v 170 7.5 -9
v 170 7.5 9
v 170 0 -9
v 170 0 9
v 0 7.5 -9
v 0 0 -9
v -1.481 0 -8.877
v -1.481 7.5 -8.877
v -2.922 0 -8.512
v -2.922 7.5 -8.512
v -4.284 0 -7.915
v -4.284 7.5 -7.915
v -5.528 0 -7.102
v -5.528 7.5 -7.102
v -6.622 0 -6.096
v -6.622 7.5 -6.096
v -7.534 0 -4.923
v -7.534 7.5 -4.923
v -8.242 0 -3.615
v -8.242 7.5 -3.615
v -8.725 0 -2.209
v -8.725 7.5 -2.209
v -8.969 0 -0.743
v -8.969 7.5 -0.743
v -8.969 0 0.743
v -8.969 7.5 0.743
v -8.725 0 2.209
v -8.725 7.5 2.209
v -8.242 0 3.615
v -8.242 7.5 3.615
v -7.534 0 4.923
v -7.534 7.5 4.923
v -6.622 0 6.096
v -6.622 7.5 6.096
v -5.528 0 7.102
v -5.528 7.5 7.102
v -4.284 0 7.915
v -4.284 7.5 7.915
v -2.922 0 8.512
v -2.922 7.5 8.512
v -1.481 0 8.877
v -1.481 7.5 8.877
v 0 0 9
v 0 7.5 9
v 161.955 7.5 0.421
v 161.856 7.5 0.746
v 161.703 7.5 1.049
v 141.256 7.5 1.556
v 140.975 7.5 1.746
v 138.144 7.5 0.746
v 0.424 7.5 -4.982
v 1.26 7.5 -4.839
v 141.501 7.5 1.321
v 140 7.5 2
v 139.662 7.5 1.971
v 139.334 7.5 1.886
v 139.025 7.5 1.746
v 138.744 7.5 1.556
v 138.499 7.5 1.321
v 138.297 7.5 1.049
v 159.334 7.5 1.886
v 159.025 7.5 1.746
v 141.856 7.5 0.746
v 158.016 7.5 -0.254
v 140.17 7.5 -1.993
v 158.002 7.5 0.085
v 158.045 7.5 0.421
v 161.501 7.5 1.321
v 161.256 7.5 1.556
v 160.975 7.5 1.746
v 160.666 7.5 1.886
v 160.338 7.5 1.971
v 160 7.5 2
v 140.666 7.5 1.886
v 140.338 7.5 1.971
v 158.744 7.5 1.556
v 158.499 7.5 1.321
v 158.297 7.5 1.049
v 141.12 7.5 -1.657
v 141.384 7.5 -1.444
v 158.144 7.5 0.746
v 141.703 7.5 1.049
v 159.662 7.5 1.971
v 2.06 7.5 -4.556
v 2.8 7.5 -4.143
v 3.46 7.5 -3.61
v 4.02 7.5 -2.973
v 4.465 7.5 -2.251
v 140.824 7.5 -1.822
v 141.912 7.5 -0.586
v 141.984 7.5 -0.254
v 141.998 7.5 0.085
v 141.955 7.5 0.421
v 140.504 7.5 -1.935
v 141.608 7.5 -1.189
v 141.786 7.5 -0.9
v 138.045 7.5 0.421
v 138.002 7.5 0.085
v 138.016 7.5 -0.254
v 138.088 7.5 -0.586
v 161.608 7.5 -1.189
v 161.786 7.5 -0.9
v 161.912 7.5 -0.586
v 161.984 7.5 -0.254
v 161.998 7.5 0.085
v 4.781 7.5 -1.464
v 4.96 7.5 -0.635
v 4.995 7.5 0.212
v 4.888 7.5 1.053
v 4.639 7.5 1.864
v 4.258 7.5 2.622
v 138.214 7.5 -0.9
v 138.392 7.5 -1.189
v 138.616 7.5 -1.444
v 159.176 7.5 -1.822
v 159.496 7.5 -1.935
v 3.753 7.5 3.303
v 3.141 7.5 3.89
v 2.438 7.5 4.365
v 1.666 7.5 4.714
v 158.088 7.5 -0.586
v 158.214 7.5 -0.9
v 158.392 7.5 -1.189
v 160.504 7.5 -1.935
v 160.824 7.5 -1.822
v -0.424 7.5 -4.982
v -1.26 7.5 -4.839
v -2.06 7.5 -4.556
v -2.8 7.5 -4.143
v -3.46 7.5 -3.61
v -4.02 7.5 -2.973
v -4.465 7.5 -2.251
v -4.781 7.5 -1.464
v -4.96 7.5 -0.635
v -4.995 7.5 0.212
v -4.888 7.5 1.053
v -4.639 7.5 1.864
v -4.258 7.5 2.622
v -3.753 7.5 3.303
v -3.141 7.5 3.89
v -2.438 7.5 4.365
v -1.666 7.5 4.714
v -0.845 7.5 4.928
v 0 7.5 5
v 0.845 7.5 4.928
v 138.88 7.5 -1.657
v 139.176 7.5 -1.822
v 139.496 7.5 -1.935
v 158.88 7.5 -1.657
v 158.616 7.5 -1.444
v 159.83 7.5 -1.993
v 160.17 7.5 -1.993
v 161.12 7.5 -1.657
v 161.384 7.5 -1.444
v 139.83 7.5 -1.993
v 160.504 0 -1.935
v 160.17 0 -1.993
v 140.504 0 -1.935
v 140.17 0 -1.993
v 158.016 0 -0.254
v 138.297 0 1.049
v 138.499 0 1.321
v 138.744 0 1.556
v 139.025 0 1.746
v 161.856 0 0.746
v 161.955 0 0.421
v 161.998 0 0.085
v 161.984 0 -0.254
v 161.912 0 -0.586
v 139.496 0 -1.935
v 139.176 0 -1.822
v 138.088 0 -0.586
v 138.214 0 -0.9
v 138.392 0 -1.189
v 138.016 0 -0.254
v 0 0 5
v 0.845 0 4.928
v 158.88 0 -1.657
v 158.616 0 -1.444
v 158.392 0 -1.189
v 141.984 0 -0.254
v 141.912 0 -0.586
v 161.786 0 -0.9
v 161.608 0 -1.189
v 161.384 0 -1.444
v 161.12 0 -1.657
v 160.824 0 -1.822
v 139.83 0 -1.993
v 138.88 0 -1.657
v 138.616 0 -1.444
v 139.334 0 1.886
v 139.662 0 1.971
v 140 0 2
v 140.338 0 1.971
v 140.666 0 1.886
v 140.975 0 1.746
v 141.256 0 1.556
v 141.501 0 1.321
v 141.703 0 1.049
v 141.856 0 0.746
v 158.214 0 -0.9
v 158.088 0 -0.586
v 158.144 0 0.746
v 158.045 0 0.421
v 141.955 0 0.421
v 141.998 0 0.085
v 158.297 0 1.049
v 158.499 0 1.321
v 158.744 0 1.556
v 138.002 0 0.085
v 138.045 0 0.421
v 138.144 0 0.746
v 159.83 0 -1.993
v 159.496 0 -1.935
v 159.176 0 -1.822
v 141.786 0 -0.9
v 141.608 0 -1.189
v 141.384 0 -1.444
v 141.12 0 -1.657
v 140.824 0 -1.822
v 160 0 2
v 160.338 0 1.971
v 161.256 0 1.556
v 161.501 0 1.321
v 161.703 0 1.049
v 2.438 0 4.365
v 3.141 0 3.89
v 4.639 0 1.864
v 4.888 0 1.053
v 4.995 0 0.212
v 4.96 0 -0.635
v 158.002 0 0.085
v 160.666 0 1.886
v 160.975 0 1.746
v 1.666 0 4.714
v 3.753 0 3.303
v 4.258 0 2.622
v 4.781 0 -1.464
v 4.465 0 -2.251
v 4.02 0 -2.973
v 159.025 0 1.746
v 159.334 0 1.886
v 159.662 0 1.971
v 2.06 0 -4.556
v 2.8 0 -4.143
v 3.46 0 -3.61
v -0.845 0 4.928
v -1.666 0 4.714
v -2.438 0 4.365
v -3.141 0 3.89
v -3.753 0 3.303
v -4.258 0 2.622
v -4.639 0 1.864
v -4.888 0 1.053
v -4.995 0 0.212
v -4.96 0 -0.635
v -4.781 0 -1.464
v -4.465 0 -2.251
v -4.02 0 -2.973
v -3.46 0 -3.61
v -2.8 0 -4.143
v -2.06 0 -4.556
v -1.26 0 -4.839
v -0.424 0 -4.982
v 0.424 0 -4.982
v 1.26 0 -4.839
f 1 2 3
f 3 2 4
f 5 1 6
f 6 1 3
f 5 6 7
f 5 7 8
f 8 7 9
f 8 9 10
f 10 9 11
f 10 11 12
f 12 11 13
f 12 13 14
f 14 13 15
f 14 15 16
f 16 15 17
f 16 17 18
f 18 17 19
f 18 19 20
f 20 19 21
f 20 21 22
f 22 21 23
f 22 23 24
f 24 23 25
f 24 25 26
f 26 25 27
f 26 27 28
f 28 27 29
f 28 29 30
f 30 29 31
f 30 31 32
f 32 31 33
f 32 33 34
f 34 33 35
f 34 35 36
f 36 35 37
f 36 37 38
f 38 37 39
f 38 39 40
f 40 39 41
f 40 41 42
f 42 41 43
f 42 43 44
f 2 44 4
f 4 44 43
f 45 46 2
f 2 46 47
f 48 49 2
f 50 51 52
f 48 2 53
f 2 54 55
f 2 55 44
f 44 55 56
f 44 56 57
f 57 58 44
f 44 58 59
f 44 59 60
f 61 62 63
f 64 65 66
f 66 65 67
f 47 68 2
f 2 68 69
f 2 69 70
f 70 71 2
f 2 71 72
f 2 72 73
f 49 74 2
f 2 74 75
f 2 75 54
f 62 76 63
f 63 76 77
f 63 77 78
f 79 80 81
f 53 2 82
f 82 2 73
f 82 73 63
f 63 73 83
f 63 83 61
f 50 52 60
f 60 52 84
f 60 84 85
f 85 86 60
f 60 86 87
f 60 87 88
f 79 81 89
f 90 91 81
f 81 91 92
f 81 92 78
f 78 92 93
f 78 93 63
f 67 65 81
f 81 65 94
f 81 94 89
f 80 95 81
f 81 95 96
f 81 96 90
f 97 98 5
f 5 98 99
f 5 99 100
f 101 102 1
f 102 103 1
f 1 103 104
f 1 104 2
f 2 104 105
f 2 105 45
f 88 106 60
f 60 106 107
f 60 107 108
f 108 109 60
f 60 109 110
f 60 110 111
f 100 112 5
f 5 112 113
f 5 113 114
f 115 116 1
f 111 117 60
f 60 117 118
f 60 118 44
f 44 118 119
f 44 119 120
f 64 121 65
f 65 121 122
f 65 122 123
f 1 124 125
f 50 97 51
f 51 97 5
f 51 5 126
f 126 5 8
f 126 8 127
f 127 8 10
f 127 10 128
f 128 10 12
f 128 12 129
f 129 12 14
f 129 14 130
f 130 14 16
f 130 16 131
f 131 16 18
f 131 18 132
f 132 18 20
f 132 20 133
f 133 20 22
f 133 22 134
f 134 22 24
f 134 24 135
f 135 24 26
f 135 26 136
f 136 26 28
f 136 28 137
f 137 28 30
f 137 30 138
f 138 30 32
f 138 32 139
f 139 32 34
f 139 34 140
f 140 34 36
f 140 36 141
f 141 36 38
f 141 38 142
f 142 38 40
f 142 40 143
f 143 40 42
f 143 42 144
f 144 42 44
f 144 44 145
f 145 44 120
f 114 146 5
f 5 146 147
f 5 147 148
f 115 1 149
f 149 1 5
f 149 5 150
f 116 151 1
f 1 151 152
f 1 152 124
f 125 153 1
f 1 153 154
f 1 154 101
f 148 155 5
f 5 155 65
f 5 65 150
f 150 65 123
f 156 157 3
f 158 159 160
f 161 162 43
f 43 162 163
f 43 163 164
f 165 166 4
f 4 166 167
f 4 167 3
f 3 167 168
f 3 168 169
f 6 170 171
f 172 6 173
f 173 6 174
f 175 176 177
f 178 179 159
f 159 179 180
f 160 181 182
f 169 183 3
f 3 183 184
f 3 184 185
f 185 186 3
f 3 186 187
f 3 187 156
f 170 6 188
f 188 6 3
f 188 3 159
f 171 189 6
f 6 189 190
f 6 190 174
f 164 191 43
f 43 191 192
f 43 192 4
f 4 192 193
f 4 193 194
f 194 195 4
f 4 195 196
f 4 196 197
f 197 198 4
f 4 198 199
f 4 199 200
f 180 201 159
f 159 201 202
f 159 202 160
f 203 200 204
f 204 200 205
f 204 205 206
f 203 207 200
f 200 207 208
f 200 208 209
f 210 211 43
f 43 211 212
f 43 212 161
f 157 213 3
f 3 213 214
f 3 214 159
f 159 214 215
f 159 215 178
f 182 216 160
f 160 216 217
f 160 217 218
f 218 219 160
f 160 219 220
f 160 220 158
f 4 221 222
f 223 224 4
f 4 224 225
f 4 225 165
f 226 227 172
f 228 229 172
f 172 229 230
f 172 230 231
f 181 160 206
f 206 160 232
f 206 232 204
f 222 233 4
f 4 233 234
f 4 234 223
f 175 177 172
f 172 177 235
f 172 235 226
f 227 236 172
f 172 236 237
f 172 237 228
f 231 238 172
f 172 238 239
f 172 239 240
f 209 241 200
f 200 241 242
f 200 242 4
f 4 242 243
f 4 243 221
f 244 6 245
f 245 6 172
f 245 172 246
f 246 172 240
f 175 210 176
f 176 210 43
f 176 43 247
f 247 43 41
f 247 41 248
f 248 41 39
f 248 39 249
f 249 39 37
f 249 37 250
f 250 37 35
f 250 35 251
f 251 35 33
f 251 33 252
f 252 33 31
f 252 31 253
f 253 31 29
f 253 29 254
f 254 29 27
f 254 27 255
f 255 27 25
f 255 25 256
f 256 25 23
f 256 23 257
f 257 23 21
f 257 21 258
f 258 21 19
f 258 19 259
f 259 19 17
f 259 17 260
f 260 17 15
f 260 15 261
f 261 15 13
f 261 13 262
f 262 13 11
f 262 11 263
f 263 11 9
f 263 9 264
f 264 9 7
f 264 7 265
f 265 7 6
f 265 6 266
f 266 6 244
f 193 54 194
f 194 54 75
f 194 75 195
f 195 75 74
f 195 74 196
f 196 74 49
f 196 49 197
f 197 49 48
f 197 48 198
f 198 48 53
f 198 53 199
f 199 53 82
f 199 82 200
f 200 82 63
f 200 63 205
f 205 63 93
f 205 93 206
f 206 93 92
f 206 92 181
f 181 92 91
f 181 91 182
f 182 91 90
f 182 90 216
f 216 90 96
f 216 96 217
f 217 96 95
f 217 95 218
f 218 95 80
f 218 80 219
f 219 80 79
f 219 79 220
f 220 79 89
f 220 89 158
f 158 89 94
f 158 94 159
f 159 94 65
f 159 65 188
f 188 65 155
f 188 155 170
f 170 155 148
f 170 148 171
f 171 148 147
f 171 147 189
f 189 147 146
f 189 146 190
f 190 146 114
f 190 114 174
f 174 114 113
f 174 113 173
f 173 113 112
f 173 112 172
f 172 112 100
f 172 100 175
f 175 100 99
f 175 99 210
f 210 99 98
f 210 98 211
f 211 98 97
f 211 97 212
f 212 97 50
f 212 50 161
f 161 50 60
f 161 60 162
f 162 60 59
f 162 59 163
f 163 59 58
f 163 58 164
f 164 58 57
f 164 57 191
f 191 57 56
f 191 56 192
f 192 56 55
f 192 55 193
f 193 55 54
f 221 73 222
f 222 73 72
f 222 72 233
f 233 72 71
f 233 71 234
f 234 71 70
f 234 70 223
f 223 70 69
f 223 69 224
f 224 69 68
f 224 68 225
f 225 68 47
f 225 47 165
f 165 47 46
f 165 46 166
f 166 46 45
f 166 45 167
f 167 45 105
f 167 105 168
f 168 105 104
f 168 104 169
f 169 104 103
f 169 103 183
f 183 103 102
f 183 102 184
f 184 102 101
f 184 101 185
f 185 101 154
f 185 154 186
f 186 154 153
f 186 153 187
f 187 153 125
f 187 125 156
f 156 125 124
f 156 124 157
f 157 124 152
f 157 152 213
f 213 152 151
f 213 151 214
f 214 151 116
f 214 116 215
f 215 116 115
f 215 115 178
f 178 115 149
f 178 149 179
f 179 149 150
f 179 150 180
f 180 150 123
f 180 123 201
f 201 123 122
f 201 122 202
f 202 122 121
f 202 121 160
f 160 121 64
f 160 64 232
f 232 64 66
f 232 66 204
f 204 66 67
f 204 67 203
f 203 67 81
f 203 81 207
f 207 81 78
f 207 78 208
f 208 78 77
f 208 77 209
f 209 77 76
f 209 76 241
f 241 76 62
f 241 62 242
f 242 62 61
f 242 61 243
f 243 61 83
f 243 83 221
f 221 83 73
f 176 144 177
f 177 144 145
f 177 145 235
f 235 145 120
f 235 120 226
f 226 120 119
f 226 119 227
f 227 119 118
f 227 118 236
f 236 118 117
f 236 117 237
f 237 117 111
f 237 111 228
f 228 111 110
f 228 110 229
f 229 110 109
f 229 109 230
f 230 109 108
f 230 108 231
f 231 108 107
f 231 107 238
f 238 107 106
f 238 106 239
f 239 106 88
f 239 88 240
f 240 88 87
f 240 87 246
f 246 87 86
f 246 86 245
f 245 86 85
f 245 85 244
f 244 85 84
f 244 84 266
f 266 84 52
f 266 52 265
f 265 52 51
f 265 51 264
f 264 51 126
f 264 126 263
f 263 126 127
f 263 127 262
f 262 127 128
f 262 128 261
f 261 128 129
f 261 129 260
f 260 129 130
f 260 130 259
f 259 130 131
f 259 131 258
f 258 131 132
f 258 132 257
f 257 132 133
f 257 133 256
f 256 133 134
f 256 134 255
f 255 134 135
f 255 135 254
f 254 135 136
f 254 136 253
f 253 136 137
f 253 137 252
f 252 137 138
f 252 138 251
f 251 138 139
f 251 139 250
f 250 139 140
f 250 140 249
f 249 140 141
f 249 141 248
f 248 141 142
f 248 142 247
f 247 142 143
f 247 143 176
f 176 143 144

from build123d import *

# Parameters (mm, degrees)
BOSS_EXTRUDE1_DEPTH = 7.5
SKETCH2_R           = 5
SKETCH2_R_2         = 2
CUT_EXTRUDE1_DEPTH  = 171.403198327


with BuildPart() as part:
    # Sketch1 → Boss-Extrude1 (new body)
    with BuildSketch(Plane(origin=(0, 0, 0), x_dir=(1, 0, 0), z_dir=(0, 1, 0))):
        with BuildLine():
            Line((0, 9), (170, 9))
            Line((170, 9), (170, -9))
            Line((170, -9), (0, -9))
            ThreePointArc((0, -9), (-9, 0), (0, 9))
        make_face()
    extrude(amount=BOSS_EXTRUDE1_DEPTH)

    # Sketch2 → Cut-Extrude1 (cut, through all)
    with BuildSketch(Plane(origin=(0, 7.5, 0), x_dir=(1, 0, 0), z_dir=(0, 1, 0))):
        with Locations(Location((0, 0, 0), (0, 0, 270))):
            Circle(SKETCH2_R)
        with Locations(Location((160, 0, 0), (0, 0, 270))):
            Circle(SKETCH2_R_2)
        with Locations(Location((140, 0, 0), (0, 0, 270))):
            Circle(SKETCH2_R_2)
    extrude(amount=-CUT_EXTRUDE1_DEPTH, mode=Mode.SUBTRACT)


solid = part.part
